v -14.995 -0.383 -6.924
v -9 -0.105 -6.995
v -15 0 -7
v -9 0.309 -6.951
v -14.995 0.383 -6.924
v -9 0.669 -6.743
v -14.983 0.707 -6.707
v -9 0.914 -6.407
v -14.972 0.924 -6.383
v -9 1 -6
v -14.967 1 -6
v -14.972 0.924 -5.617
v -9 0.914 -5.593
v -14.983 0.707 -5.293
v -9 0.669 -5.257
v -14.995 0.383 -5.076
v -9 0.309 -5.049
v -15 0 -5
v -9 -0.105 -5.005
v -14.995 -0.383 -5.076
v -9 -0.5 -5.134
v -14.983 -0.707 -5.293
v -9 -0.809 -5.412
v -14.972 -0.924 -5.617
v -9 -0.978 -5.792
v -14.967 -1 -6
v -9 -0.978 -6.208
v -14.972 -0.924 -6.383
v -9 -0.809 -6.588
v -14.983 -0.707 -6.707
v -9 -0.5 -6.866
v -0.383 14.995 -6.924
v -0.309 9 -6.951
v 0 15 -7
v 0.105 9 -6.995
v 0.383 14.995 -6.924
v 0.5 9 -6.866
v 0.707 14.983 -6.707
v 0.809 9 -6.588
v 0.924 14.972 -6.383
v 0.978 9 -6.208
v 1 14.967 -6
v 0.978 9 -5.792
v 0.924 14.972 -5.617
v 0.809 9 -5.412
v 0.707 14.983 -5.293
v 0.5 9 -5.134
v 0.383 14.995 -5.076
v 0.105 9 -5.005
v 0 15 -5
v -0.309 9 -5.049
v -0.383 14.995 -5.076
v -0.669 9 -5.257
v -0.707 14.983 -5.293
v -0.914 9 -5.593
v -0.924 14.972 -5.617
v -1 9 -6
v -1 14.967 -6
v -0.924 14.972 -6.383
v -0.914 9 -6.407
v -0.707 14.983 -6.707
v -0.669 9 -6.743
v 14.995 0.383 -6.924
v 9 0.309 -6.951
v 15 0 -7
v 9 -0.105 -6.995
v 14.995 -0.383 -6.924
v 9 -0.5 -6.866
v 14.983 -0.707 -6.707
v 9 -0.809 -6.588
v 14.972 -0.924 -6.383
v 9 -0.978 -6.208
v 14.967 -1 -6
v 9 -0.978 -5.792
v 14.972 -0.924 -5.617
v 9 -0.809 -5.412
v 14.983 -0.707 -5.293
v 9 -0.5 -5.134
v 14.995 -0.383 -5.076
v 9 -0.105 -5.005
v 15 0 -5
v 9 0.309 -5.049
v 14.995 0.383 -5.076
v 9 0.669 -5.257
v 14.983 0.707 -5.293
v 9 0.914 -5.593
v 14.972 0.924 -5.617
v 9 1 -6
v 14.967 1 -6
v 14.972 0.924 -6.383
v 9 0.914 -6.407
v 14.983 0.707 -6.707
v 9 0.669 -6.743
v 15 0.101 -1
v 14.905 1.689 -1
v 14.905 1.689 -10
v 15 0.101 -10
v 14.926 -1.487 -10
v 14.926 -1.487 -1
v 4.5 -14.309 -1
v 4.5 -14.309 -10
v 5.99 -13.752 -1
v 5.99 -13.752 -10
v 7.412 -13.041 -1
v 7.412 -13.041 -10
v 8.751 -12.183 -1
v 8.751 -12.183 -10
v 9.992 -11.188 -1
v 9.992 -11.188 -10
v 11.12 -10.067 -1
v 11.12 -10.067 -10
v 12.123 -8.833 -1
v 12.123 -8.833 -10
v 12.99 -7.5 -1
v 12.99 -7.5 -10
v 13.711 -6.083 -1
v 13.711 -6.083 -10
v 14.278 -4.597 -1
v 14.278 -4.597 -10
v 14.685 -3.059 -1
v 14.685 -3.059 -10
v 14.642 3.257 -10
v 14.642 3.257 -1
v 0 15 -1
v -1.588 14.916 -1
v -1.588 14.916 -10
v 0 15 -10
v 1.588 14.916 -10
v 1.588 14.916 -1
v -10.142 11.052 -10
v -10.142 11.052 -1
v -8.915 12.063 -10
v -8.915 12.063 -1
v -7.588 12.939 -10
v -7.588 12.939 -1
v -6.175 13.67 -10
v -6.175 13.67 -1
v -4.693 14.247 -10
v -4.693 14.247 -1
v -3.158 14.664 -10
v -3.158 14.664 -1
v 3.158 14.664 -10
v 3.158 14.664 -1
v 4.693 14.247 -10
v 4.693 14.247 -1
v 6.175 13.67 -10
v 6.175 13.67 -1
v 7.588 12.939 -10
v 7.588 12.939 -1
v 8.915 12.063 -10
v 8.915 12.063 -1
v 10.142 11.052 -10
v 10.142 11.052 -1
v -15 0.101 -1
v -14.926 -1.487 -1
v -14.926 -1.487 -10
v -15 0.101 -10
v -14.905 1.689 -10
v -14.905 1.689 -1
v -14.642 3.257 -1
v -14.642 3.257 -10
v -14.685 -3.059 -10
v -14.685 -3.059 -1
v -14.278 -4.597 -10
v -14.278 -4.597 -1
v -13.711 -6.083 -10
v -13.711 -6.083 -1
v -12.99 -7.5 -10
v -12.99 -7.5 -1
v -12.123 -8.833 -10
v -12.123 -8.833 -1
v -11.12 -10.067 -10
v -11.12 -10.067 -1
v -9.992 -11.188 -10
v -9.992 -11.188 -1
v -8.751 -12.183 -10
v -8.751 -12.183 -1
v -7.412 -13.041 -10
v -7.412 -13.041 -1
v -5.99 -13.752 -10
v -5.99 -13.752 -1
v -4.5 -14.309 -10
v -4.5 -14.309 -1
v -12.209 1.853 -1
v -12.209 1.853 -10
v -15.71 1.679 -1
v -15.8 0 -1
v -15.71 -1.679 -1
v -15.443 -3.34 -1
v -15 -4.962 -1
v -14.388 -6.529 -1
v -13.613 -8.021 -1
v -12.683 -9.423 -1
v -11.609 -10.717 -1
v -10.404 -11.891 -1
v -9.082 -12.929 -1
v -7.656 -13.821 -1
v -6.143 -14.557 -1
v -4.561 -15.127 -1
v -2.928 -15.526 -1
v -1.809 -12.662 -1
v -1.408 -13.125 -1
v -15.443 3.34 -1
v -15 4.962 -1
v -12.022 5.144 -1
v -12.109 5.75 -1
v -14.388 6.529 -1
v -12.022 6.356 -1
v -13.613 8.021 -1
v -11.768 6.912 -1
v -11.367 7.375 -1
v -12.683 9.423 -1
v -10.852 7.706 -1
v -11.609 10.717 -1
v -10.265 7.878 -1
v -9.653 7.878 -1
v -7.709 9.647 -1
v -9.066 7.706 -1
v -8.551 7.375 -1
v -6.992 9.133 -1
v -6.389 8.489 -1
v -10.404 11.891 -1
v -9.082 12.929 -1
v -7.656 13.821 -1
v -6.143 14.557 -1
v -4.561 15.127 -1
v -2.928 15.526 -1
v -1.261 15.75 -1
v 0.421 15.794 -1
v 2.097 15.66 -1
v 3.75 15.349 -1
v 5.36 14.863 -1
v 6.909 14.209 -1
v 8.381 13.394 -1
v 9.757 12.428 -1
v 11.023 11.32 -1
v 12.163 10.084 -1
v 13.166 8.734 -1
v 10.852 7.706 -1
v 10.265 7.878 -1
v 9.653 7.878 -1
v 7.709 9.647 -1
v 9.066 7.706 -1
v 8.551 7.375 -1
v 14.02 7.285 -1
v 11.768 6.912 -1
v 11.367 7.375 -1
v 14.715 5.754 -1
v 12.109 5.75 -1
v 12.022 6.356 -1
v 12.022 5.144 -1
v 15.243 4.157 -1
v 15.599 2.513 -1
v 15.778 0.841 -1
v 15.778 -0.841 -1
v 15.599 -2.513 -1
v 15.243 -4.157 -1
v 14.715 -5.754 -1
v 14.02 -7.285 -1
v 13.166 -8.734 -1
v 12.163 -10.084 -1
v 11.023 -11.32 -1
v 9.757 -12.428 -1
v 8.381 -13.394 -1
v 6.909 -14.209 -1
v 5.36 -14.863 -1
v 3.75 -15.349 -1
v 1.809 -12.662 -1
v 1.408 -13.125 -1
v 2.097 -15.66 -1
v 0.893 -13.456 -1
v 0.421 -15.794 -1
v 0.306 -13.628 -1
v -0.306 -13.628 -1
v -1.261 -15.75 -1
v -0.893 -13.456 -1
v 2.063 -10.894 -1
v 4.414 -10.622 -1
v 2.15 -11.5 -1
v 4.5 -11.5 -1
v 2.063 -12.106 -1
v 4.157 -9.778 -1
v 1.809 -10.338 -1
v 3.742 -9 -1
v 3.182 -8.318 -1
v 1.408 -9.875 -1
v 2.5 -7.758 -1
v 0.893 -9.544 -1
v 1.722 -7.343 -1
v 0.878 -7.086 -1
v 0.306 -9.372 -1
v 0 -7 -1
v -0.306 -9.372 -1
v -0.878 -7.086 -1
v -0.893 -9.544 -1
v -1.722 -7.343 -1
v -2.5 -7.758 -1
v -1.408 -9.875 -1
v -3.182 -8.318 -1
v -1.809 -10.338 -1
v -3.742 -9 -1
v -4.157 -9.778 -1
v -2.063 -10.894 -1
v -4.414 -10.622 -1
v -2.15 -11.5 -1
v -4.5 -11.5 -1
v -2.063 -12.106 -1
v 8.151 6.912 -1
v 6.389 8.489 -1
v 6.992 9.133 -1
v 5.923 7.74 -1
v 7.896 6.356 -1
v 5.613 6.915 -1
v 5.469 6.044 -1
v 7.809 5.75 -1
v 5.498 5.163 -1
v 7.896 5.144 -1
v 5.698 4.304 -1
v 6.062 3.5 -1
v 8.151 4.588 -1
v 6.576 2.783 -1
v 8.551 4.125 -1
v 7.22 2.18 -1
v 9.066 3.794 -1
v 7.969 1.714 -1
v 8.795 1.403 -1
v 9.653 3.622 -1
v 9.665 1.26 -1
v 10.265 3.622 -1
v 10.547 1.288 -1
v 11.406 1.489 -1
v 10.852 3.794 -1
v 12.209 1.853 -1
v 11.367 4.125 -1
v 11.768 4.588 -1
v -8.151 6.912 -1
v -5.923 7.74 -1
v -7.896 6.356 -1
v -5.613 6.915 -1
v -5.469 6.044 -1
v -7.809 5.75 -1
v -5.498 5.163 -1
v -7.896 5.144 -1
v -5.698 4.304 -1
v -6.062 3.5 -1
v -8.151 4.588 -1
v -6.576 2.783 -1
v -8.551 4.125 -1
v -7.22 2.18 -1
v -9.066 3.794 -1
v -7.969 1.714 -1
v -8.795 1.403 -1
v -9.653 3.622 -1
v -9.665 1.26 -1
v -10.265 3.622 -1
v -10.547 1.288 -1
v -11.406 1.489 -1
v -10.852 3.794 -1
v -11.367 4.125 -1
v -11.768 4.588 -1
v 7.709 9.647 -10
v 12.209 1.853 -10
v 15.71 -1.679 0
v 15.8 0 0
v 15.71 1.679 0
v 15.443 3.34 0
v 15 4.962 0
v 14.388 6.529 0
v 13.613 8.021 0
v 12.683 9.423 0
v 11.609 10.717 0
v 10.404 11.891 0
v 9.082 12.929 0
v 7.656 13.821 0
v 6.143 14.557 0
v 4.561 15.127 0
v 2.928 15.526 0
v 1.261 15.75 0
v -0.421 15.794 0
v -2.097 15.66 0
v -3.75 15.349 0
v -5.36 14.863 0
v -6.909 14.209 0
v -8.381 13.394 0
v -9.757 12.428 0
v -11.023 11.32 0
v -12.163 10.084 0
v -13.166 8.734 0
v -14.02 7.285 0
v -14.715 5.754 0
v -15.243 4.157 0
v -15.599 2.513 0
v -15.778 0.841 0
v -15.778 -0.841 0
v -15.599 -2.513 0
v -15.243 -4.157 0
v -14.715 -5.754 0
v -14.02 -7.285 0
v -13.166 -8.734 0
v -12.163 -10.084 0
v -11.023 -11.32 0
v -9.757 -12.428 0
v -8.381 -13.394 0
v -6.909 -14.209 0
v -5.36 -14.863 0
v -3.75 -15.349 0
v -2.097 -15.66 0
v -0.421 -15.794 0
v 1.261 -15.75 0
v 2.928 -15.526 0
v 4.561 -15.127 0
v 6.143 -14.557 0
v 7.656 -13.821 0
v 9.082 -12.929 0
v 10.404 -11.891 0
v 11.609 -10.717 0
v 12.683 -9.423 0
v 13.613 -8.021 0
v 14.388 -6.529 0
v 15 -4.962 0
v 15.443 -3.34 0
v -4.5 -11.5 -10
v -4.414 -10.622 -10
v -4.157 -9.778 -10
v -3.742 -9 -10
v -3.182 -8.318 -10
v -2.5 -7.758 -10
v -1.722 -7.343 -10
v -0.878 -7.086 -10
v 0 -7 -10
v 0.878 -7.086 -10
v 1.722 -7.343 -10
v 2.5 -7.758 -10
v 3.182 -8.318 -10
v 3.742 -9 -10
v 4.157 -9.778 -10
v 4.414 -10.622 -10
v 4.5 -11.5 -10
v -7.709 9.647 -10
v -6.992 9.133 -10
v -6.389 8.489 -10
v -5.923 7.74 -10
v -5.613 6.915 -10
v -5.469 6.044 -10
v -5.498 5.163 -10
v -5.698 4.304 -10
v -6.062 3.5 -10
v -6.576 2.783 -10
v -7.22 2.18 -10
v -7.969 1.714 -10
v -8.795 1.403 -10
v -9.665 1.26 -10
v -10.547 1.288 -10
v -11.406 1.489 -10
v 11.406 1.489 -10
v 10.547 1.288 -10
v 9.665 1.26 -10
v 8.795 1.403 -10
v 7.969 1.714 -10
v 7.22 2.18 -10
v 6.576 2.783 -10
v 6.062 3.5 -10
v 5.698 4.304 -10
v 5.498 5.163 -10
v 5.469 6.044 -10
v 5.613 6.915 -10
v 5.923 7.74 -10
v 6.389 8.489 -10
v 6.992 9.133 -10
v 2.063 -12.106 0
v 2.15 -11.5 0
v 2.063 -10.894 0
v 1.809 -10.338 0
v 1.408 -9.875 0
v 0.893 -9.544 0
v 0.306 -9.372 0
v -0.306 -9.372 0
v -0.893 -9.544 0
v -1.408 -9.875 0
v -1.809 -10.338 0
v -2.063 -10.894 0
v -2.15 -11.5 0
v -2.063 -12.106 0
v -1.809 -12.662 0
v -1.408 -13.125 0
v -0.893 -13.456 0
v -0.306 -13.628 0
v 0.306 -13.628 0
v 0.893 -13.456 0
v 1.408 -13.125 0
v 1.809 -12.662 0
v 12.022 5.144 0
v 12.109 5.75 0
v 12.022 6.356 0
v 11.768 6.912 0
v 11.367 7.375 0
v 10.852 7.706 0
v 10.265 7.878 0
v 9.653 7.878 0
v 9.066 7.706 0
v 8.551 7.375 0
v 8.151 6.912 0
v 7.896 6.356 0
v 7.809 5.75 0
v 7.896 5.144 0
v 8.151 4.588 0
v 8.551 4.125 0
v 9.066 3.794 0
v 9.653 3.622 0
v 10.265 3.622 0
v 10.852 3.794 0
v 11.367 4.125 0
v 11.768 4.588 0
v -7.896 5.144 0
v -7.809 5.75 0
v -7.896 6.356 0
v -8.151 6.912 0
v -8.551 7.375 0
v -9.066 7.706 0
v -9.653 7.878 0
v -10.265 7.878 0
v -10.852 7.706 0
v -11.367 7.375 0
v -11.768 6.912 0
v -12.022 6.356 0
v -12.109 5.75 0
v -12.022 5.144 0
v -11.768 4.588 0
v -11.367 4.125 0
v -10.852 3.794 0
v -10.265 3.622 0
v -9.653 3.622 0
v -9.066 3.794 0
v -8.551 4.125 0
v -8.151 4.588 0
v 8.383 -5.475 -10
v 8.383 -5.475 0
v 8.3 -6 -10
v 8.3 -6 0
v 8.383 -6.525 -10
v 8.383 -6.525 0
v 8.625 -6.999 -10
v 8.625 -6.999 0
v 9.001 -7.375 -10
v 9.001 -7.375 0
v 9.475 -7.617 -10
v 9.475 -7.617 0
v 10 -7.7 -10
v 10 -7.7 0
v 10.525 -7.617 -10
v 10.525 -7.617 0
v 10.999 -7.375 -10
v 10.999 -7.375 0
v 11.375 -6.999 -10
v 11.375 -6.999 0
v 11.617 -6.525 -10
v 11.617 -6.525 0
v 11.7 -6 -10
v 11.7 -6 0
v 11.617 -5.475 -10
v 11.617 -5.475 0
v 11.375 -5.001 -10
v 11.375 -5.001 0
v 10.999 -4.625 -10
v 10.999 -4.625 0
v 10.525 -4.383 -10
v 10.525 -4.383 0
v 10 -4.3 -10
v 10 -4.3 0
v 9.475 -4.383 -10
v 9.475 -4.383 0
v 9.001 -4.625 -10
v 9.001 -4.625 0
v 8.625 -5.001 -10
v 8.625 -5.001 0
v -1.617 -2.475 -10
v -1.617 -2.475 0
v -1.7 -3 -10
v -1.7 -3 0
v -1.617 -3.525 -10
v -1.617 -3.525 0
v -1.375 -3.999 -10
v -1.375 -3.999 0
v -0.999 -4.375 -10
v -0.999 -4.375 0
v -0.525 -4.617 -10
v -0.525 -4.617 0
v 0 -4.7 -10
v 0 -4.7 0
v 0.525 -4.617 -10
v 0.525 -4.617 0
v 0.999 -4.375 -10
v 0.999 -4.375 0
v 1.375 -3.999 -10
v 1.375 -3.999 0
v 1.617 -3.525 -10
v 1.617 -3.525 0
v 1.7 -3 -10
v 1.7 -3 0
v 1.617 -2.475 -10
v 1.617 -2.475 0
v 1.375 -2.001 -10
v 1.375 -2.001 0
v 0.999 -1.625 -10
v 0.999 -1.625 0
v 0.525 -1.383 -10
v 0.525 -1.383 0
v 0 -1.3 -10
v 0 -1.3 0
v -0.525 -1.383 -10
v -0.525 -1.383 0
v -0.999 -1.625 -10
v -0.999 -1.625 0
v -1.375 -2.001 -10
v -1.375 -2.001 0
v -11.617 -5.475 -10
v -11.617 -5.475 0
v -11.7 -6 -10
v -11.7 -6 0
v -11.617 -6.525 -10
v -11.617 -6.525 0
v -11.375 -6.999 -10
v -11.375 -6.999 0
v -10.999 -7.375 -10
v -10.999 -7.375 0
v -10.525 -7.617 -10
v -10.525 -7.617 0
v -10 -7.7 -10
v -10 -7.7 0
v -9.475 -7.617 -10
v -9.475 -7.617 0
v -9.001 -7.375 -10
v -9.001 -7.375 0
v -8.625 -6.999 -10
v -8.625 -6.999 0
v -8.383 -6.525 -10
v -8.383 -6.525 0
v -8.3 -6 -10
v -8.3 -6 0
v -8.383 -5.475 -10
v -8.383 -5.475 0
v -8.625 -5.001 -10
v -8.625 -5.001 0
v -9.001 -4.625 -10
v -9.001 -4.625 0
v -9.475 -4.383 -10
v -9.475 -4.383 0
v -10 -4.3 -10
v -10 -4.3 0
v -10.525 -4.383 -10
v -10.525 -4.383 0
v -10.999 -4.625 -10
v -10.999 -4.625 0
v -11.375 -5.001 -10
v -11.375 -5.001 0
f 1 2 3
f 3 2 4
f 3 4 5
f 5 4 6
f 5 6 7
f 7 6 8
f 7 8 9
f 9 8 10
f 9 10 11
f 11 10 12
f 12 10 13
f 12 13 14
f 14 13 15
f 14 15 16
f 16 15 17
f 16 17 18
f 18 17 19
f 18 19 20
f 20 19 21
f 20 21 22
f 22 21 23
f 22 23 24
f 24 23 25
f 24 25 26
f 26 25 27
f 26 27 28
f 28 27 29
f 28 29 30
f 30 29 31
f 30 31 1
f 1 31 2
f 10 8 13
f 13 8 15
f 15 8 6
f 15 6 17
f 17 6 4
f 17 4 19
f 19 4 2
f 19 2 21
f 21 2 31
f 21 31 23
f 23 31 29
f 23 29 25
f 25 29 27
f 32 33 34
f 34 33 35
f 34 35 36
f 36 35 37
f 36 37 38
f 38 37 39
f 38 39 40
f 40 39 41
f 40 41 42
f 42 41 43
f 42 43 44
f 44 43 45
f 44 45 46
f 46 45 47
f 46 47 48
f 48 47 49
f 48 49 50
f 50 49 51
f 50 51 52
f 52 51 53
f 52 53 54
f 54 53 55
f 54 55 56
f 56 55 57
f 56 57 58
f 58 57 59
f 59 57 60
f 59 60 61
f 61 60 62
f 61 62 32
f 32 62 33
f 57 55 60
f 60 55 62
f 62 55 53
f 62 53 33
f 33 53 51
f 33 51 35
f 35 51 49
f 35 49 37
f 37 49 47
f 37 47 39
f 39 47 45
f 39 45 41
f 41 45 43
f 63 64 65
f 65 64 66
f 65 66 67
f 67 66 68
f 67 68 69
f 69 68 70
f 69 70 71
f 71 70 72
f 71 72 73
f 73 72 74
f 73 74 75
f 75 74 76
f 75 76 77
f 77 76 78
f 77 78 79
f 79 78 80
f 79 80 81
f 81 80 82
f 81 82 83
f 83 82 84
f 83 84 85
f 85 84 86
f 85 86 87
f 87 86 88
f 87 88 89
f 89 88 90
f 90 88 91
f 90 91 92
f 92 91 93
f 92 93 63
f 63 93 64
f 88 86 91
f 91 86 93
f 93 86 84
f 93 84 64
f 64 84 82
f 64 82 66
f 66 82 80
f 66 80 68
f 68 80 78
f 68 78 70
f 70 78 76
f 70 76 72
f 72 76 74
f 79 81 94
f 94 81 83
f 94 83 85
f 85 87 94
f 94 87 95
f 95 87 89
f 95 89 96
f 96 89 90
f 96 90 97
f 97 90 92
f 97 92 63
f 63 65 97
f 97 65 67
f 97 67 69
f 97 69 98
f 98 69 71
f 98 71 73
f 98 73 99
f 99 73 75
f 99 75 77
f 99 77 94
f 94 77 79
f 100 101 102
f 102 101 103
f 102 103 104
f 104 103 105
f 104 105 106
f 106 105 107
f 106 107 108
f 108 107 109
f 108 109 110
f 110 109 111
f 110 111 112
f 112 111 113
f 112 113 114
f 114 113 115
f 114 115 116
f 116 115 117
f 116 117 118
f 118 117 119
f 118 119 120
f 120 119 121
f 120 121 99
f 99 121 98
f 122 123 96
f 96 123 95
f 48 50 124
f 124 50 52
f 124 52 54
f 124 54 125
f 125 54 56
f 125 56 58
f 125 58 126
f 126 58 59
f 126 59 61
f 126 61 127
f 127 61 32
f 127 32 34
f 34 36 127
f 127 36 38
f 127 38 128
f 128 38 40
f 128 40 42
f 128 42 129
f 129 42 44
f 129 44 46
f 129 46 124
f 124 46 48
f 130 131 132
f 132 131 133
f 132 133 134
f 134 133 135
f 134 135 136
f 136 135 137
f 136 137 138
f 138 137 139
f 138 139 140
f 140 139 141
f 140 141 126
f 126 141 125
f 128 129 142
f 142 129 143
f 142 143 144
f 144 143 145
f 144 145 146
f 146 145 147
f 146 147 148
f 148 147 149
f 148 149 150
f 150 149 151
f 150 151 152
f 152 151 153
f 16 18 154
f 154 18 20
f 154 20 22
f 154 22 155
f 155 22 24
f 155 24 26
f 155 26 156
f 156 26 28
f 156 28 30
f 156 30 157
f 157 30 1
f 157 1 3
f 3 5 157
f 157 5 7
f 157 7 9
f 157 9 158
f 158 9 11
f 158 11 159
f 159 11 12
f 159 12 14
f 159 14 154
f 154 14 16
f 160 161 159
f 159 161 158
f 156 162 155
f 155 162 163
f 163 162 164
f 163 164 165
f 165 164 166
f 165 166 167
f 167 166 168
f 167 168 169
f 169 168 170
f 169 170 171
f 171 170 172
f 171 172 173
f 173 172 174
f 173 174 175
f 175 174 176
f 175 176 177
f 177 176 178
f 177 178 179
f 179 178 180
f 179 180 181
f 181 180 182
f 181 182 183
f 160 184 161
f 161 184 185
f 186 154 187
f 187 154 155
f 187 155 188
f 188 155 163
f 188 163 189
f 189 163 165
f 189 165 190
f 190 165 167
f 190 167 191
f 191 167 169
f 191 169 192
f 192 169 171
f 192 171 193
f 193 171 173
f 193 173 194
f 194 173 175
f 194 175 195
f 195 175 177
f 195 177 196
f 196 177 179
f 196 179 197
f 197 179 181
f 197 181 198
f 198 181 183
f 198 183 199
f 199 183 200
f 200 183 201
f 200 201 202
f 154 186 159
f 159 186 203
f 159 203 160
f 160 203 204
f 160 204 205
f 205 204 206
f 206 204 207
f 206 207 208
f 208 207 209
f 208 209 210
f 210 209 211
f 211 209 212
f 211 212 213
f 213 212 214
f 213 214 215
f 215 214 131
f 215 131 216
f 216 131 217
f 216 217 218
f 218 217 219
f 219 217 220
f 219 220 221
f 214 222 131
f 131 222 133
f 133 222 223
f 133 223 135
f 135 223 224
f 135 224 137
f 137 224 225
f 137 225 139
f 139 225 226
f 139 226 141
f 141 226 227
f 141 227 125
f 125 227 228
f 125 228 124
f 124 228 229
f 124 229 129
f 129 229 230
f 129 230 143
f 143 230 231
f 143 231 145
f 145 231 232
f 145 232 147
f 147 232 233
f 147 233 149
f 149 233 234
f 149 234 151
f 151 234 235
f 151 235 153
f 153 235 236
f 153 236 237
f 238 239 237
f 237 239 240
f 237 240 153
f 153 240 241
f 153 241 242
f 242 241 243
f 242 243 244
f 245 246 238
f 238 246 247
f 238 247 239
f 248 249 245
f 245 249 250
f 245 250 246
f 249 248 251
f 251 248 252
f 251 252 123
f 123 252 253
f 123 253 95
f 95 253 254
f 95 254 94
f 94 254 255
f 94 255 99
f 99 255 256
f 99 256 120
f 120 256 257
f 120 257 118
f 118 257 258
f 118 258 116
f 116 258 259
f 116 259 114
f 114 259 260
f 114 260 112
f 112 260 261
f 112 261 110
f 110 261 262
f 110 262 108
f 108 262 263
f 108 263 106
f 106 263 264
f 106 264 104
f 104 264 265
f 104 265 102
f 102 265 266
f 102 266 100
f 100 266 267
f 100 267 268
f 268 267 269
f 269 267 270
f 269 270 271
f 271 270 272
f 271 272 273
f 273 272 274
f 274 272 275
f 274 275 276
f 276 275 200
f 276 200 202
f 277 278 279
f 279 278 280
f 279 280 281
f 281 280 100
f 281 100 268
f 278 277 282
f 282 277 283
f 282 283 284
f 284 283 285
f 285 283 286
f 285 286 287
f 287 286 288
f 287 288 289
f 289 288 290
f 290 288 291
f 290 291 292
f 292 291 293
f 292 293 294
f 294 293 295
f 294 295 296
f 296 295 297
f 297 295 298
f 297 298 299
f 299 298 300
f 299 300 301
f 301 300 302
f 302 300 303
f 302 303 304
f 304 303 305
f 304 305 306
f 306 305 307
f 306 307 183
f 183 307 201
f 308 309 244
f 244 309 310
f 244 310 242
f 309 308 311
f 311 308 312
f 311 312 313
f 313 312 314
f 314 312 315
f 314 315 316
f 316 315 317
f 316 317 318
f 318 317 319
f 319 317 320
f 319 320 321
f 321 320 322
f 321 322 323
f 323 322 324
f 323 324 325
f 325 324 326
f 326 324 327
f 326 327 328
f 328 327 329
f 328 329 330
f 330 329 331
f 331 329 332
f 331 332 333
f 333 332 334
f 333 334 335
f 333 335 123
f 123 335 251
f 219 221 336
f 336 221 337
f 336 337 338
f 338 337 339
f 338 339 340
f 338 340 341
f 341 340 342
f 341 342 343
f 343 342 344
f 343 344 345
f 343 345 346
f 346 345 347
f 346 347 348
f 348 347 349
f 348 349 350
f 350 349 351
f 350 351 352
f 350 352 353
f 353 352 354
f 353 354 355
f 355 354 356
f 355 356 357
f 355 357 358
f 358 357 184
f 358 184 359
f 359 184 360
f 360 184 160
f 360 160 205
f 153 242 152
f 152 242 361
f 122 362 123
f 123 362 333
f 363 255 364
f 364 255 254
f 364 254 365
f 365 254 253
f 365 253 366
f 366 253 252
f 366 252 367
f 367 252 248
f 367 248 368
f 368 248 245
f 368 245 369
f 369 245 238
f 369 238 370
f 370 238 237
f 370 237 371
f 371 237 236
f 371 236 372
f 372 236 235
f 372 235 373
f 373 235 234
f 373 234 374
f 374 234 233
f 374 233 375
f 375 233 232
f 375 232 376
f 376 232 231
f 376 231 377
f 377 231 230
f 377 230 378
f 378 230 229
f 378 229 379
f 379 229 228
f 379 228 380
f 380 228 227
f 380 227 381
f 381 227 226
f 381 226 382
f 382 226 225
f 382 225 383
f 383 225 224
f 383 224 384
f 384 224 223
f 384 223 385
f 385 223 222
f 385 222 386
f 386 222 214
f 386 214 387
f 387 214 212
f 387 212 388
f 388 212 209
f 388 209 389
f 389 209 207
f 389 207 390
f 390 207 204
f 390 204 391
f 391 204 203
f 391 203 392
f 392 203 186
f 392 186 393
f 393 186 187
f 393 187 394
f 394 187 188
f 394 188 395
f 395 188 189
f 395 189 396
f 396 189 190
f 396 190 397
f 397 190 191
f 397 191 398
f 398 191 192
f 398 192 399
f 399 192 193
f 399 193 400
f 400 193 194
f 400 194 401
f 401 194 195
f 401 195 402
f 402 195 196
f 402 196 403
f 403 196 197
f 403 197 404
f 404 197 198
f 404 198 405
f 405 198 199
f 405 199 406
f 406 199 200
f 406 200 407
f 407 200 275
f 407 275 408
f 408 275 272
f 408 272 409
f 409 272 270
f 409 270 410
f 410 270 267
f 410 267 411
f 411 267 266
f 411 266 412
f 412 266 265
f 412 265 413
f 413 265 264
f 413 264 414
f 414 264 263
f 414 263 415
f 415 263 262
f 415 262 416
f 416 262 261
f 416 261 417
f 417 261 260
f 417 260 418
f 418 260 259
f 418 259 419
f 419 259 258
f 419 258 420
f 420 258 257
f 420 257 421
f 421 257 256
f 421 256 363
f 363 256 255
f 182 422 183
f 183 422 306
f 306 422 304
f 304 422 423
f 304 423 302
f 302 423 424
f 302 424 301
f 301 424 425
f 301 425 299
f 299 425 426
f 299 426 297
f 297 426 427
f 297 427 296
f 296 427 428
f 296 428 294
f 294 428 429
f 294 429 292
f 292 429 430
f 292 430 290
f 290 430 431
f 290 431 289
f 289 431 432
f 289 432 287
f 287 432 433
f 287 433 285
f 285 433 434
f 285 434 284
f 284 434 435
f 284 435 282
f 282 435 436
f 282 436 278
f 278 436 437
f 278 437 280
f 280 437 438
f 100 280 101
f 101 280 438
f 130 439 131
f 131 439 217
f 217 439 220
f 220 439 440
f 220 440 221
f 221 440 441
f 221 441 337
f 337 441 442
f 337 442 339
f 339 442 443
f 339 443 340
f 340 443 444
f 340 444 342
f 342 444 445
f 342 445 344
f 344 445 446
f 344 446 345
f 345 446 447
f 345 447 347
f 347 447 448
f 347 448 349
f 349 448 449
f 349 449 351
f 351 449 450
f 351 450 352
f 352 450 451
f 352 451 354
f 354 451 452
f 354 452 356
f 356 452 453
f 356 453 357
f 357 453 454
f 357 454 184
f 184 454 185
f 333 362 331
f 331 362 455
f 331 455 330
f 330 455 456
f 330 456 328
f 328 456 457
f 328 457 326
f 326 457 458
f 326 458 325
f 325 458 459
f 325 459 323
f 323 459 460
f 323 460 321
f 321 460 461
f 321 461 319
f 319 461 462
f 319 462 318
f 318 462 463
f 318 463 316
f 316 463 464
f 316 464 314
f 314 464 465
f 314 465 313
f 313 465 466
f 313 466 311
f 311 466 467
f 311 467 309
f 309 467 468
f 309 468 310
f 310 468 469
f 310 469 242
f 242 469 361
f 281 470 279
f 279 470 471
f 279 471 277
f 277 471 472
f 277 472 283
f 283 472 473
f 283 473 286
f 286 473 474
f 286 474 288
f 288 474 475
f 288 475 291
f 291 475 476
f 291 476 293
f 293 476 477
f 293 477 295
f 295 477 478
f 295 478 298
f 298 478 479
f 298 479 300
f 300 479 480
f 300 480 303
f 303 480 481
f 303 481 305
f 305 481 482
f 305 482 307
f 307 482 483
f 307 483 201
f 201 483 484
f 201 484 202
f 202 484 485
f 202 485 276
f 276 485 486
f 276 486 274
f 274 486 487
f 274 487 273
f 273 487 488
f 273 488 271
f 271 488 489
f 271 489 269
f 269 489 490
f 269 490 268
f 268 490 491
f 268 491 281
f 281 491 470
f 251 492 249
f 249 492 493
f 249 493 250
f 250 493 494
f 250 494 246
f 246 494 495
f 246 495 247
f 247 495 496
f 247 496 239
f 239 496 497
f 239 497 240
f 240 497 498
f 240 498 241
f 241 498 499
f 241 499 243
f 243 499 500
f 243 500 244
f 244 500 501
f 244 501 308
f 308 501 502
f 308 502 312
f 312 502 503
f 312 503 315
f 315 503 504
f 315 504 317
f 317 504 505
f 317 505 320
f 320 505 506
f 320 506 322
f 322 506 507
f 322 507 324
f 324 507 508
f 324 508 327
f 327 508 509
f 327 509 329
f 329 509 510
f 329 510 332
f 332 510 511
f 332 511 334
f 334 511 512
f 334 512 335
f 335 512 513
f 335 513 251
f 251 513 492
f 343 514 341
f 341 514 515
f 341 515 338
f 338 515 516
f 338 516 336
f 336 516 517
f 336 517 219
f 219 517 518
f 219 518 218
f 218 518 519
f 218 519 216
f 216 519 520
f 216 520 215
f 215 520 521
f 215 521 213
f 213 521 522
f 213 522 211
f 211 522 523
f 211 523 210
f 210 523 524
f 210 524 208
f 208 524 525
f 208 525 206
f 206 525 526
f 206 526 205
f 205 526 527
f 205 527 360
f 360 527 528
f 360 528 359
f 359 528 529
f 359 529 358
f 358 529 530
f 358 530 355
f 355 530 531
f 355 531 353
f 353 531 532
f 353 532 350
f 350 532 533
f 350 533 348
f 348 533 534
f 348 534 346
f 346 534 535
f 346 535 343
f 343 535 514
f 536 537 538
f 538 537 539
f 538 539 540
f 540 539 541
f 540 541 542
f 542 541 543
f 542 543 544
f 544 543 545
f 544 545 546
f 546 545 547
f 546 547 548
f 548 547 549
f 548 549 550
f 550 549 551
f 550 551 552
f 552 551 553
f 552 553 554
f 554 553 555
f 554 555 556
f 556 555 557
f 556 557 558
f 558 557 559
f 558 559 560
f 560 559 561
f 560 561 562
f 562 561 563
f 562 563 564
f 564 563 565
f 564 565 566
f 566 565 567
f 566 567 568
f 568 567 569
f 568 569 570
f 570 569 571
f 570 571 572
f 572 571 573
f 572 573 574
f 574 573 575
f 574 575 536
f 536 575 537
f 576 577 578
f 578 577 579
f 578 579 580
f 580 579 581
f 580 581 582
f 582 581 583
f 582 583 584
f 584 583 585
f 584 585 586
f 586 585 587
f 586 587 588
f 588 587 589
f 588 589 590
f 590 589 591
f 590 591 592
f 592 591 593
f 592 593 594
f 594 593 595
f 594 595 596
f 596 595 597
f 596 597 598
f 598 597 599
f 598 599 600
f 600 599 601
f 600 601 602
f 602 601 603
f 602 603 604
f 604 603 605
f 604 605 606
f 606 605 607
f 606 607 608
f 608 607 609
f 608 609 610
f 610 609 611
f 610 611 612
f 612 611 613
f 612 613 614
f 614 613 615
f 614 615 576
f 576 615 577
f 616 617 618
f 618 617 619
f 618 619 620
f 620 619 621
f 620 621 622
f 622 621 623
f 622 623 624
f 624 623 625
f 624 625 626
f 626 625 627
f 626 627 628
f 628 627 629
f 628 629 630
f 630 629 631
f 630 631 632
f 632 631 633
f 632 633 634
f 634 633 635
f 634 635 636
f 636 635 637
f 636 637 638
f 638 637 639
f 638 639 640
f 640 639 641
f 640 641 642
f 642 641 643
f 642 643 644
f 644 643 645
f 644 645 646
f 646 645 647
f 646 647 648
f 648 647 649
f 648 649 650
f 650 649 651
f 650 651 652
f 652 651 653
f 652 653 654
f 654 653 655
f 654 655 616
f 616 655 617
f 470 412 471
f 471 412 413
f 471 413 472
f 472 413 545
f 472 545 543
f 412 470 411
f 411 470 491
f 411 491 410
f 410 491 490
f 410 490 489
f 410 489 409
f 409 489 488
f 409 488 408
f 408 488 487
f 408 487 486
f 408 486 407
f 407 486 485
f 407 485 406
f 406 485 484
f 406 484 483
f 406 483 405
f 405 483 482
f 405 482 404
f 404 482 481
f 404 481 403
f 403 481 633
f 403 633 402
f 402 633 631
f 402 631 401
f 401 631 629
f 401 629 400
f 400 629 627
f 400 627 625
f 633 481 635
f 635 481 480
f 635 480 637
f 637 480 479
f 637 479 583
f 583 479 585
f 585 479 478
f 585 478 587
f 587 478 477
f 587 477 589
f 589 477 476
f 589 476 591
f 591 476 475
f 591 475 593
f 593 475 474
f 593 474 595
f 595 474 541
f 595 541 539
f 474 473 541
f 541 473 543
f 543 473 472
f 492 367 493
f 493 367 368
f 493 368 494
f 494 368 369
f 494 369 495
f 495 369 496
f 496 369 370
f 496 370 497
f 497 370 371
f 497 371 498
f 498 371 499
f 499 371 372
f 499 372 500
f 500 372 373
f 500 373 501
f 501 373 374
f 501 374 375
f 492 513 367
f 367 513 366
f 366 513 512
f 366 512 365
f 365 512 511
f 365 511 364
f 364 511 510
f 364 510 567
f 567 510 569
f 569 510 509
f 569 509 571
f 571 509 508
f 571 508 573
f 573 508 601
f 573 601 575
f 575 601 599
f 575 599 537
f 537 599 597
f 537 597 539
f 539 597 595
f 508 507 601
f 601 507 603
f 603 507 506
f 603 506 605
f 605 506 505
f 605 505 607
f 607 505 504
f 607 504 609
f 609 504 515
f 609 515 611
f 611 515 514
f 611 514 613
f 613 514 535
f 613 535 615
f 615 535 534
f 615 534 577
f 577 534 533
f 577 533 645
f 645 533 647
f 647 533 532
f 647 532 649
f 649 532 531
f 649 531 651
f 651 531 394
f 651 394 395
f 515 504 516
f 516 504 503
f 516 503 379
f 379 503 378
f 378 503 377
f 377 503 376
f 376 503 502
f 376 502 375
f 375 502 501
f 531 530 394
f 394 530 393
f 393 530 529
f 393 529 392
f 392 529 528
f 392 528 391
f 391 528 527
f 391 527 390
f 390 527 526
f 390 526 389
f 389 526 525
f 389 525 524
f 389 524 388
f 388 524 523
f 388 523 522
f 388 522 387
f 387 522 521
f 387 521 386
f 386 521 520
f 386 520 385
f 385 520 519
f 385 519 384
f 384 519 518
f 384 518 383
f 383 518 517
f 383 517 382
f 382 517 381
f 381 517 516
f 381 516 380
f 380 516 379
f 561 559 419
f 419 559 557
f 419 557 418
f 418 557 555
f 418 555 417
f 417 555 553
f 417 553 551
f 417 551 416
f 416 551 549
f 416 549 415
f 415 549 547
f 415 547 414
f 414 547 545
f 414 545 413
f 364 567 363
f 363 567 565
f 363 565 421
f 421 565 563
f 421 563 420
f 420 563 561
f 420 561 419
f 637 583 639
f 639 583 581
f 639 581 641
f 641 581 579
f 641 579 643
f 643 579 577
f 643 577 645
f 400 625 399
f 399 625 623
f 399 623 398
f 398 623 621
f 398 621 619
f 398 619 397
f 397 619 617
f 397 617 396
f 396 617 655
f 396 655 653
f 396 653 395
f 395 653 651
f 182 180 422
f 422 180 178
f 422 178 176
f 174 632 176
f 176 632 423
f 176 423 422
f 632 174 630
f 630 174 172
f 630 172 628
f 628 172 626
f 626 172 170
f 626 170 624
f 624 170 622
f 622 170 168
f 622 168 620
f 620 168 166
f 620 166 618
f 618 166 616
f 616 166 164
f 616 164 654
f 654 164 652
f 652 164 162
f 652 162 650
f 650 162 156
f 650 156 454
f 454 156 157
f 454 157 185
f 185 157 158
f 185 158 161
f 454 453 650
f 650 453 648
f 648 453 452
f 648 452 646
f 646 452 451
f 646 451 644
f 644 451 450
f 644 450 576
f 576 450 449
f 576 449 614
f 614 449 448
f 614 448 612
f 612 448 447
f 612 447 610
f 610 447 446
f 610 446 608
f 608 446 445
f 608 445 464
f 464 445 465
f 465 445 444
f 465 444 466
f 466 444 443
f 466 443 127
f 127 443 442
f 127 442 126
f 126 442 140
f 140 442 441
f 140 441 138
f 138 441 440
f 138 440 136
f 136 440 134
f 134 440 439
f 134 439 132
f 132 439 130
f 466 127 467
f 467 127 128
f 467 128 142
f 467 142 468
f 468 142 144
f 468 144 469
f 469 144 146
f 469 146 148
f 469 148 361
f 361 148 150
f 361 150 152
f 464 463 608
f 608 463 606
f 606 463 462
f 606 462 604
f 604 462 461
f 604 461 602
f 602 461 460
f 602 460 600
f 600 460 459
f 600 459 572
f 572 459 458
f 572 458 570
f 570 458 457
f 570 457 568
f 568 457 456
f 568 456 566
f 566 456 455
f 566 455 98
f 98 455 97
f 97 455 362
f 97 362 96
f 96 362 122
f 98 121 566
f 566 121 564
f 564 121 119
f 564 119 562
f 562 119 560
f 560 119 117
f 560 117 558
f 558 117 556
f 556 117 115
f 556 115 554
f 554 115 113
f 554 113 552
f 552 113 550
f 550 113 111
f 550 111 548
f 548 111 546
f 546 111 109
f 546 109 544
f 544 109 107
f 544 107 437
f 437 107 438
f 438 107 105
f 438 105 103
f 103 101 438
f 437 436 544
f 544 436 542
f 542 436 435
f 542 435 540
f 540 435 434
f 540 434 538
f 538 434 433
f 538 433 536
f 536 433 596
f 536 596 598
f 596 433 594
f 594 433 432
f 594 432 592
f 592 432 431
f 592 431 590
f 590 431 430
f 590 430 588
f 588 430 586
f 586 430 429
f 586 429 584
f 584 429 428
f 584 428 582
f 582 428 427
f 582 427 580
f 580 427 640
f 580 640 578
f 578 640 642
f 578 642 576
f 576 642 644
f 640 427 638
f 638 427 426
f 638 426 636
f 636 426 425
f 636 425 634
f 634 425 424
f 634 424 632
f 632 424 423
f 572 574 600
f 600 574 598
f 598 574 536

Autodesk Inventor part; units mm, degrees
sketch "スケッチ2" plane through (0, 0, 0) normal (0, 0, 1) x (1, 0, 0)
  circle A0 centre (0, 0) radius 15.8
  dimension "d0" = 31.6
extrude "押し出し1" add sketch "スケッチ2" against normal blind 10
sketch "スケッチ13" plane through (0, 0, 0) normal (0, 0, 1) x (1, 0, 0)
  circle A0 centre (0, -3) radius 1.7
  circle A1 centre (-10, -6) radius 1.7
  circle A2 centre (10, -6) radius 1.7
  line L0 (0, 0) -> (0, 17.9574) construction
  dimension "d90" = 3.4
  dimension "d91" = 3.4
  dimension "d92" = 3.4
  dimension "d93" = 3
  dimension "d94" = 6
  dimension "d95" = 10
extrude "押し出し11" cut sketch "スケッチ13" against normal through all
sketch "スケッチ14" plane through (0, 0, 0) normal (0, 0, 1) x (1, 0, 0)
  circle A0 centre (0, -11.5) radius 2.15
  circle A1 centre (9.9593, 5.75) radius 2.15
  circle A2 centre (-9.9593, 5.75) radius 2.15
  point P0 (0, 0)
  dimension "d98" = 4.3
  dimension "d99" = 11.5
  dimension "d102" = 360
extrude "押し出し12" cut sketch "スケッチ14" against normal blind 1
ref_plane "作業平面1" through (15, 0, 0) normal (1, 0, 0) x (0, 1, 0)
ref_plane "作業平面2" through (-15, 0, 0) normal (1, 0, 0) x (0, 1, 0)
ref_plane "作業平面3" through (0, 15, 0) normal (0, 1, 0) x (-1, 0, 0)
ref_plane "作業平面4" through (0, -15, 0) normal (0, 1, 0) x (-1, 0, 0)
sketch "スケッチ22" plane through (0, 0, -10) normal (0, 0, -1) x (-1, 0, 0)
  arc A0 (4.5, -11.5) -> (-4.5, -11.5) centre (0, -11.5) ccw
  line L0 (-4.5, -11.5) -> (-4.5, -15.8)
  line L1 (-4.5, -15.8) -> (4.5, -15.8)
  line L2 (4.5, -15.8) -> (4.5, -11.5)
  arc A1 (7.7093, 9.6471) -> (12.2093, 1.8529) centre (9.9593, 5.75) ccw
  line L3 (11.4332, 11.7971) -> (7.7093, 9.6471)
  line L4 (15.9332, 4.0029) -> (11.4332, 11.7971)
  line L5 (12.2093, 1.8529) -> (15.9332, 4.0029)
  arc A2 (-12.2093, 1.8529) -> (-7.7093, 9.6471) centre (-9.9593, 5.75) ccw
  line L6 (-15.9332, 4.0029) -> (-12.2093, 1.8529)
  line L7 (-11.4332, 11.7971) -> (-15.9332, 4.0029)
  line L8 (-7.7093, 9.6471) -> (-11.4332, 11.7971)
  point P0 (0, 0)
  dimension "d129" = 4.5
  dimension "d132" = 360
extrude "押し出し17" cut sketch "スケッチ22" against normal blind 9
sketch "スケッチ23" plane through (15, 0, 0) normal (1, 0, 0) x (0, 1, 0)
  point P0 (0, 0)
sketch "スケッチ24" plane through (0, 0, -10) normal (0, 0, -1) x (-1, 0, 0)
  circle A0 centre (0, 0) radius 15.8
  circle A1 centre (0, 0) radius 15
  dimension "d136" = 30
extrude "押し出し18" cut sketch "スケッチ24" against normal blind 9
sketch "スケッチ25" plane through (15, 0, 0) normal (1, 0, 0) x (0, 1, 0)
  circle A0 centre (0, -6) radius 1
  line L0 (-14.3091, -10) -> (3.2574, -10) projected
  line L1 (15.8, -1) -> (-15.8, -1) projected
  point P0 (0, 0)
  dimension "d139" = 2
  dimension "d141" = 5
sketch "スケッチ27" plane through (0, 15, 0) normal (0, 1, 0) x (-1, 0, 0)
  circle A0 centre (0, -6) radius 1
  line L0 (15.8, -1) -> (-15.8, -1) projected
  point P0 (0, 0)
  dimension "d142" = 2
  dimension "d143" = 5
sketch "スケッチ28" plane through (-15, 0, 0) normal (1, 0, 0) x (0, 1, 0)
  circle A0 centre (0, -6) radius 1
  line L0 (15.8, -1) -> (-15.8, -1) projected
  point P0 (0, 0)
  dimension "d144" = 2
  dimension "d145" = 5
extrude "押し出し19" cut sketch "スケッチ25" against normal blind 6
extrude "押し出し20" cut sketch "スケッチ27" against normal blind 6
extrude "押し出し21" cut sketch "スケッチ28" along normal blind 6
thread "ねじ9" size "M2x0.4" class "6H" standard "ANSI Metric M Profile" full length
thread "ねじ10" size "M2x0.4" class "6H" standard "ANSI Metric M Profile" full length
thread "ねじ11" size "M2x0.4" class "6H" standard "ANSI Metric M Profile" full length
properties part number "B_pipe_cylinder_5_1_1" material "ステンレス鋼 440C"
